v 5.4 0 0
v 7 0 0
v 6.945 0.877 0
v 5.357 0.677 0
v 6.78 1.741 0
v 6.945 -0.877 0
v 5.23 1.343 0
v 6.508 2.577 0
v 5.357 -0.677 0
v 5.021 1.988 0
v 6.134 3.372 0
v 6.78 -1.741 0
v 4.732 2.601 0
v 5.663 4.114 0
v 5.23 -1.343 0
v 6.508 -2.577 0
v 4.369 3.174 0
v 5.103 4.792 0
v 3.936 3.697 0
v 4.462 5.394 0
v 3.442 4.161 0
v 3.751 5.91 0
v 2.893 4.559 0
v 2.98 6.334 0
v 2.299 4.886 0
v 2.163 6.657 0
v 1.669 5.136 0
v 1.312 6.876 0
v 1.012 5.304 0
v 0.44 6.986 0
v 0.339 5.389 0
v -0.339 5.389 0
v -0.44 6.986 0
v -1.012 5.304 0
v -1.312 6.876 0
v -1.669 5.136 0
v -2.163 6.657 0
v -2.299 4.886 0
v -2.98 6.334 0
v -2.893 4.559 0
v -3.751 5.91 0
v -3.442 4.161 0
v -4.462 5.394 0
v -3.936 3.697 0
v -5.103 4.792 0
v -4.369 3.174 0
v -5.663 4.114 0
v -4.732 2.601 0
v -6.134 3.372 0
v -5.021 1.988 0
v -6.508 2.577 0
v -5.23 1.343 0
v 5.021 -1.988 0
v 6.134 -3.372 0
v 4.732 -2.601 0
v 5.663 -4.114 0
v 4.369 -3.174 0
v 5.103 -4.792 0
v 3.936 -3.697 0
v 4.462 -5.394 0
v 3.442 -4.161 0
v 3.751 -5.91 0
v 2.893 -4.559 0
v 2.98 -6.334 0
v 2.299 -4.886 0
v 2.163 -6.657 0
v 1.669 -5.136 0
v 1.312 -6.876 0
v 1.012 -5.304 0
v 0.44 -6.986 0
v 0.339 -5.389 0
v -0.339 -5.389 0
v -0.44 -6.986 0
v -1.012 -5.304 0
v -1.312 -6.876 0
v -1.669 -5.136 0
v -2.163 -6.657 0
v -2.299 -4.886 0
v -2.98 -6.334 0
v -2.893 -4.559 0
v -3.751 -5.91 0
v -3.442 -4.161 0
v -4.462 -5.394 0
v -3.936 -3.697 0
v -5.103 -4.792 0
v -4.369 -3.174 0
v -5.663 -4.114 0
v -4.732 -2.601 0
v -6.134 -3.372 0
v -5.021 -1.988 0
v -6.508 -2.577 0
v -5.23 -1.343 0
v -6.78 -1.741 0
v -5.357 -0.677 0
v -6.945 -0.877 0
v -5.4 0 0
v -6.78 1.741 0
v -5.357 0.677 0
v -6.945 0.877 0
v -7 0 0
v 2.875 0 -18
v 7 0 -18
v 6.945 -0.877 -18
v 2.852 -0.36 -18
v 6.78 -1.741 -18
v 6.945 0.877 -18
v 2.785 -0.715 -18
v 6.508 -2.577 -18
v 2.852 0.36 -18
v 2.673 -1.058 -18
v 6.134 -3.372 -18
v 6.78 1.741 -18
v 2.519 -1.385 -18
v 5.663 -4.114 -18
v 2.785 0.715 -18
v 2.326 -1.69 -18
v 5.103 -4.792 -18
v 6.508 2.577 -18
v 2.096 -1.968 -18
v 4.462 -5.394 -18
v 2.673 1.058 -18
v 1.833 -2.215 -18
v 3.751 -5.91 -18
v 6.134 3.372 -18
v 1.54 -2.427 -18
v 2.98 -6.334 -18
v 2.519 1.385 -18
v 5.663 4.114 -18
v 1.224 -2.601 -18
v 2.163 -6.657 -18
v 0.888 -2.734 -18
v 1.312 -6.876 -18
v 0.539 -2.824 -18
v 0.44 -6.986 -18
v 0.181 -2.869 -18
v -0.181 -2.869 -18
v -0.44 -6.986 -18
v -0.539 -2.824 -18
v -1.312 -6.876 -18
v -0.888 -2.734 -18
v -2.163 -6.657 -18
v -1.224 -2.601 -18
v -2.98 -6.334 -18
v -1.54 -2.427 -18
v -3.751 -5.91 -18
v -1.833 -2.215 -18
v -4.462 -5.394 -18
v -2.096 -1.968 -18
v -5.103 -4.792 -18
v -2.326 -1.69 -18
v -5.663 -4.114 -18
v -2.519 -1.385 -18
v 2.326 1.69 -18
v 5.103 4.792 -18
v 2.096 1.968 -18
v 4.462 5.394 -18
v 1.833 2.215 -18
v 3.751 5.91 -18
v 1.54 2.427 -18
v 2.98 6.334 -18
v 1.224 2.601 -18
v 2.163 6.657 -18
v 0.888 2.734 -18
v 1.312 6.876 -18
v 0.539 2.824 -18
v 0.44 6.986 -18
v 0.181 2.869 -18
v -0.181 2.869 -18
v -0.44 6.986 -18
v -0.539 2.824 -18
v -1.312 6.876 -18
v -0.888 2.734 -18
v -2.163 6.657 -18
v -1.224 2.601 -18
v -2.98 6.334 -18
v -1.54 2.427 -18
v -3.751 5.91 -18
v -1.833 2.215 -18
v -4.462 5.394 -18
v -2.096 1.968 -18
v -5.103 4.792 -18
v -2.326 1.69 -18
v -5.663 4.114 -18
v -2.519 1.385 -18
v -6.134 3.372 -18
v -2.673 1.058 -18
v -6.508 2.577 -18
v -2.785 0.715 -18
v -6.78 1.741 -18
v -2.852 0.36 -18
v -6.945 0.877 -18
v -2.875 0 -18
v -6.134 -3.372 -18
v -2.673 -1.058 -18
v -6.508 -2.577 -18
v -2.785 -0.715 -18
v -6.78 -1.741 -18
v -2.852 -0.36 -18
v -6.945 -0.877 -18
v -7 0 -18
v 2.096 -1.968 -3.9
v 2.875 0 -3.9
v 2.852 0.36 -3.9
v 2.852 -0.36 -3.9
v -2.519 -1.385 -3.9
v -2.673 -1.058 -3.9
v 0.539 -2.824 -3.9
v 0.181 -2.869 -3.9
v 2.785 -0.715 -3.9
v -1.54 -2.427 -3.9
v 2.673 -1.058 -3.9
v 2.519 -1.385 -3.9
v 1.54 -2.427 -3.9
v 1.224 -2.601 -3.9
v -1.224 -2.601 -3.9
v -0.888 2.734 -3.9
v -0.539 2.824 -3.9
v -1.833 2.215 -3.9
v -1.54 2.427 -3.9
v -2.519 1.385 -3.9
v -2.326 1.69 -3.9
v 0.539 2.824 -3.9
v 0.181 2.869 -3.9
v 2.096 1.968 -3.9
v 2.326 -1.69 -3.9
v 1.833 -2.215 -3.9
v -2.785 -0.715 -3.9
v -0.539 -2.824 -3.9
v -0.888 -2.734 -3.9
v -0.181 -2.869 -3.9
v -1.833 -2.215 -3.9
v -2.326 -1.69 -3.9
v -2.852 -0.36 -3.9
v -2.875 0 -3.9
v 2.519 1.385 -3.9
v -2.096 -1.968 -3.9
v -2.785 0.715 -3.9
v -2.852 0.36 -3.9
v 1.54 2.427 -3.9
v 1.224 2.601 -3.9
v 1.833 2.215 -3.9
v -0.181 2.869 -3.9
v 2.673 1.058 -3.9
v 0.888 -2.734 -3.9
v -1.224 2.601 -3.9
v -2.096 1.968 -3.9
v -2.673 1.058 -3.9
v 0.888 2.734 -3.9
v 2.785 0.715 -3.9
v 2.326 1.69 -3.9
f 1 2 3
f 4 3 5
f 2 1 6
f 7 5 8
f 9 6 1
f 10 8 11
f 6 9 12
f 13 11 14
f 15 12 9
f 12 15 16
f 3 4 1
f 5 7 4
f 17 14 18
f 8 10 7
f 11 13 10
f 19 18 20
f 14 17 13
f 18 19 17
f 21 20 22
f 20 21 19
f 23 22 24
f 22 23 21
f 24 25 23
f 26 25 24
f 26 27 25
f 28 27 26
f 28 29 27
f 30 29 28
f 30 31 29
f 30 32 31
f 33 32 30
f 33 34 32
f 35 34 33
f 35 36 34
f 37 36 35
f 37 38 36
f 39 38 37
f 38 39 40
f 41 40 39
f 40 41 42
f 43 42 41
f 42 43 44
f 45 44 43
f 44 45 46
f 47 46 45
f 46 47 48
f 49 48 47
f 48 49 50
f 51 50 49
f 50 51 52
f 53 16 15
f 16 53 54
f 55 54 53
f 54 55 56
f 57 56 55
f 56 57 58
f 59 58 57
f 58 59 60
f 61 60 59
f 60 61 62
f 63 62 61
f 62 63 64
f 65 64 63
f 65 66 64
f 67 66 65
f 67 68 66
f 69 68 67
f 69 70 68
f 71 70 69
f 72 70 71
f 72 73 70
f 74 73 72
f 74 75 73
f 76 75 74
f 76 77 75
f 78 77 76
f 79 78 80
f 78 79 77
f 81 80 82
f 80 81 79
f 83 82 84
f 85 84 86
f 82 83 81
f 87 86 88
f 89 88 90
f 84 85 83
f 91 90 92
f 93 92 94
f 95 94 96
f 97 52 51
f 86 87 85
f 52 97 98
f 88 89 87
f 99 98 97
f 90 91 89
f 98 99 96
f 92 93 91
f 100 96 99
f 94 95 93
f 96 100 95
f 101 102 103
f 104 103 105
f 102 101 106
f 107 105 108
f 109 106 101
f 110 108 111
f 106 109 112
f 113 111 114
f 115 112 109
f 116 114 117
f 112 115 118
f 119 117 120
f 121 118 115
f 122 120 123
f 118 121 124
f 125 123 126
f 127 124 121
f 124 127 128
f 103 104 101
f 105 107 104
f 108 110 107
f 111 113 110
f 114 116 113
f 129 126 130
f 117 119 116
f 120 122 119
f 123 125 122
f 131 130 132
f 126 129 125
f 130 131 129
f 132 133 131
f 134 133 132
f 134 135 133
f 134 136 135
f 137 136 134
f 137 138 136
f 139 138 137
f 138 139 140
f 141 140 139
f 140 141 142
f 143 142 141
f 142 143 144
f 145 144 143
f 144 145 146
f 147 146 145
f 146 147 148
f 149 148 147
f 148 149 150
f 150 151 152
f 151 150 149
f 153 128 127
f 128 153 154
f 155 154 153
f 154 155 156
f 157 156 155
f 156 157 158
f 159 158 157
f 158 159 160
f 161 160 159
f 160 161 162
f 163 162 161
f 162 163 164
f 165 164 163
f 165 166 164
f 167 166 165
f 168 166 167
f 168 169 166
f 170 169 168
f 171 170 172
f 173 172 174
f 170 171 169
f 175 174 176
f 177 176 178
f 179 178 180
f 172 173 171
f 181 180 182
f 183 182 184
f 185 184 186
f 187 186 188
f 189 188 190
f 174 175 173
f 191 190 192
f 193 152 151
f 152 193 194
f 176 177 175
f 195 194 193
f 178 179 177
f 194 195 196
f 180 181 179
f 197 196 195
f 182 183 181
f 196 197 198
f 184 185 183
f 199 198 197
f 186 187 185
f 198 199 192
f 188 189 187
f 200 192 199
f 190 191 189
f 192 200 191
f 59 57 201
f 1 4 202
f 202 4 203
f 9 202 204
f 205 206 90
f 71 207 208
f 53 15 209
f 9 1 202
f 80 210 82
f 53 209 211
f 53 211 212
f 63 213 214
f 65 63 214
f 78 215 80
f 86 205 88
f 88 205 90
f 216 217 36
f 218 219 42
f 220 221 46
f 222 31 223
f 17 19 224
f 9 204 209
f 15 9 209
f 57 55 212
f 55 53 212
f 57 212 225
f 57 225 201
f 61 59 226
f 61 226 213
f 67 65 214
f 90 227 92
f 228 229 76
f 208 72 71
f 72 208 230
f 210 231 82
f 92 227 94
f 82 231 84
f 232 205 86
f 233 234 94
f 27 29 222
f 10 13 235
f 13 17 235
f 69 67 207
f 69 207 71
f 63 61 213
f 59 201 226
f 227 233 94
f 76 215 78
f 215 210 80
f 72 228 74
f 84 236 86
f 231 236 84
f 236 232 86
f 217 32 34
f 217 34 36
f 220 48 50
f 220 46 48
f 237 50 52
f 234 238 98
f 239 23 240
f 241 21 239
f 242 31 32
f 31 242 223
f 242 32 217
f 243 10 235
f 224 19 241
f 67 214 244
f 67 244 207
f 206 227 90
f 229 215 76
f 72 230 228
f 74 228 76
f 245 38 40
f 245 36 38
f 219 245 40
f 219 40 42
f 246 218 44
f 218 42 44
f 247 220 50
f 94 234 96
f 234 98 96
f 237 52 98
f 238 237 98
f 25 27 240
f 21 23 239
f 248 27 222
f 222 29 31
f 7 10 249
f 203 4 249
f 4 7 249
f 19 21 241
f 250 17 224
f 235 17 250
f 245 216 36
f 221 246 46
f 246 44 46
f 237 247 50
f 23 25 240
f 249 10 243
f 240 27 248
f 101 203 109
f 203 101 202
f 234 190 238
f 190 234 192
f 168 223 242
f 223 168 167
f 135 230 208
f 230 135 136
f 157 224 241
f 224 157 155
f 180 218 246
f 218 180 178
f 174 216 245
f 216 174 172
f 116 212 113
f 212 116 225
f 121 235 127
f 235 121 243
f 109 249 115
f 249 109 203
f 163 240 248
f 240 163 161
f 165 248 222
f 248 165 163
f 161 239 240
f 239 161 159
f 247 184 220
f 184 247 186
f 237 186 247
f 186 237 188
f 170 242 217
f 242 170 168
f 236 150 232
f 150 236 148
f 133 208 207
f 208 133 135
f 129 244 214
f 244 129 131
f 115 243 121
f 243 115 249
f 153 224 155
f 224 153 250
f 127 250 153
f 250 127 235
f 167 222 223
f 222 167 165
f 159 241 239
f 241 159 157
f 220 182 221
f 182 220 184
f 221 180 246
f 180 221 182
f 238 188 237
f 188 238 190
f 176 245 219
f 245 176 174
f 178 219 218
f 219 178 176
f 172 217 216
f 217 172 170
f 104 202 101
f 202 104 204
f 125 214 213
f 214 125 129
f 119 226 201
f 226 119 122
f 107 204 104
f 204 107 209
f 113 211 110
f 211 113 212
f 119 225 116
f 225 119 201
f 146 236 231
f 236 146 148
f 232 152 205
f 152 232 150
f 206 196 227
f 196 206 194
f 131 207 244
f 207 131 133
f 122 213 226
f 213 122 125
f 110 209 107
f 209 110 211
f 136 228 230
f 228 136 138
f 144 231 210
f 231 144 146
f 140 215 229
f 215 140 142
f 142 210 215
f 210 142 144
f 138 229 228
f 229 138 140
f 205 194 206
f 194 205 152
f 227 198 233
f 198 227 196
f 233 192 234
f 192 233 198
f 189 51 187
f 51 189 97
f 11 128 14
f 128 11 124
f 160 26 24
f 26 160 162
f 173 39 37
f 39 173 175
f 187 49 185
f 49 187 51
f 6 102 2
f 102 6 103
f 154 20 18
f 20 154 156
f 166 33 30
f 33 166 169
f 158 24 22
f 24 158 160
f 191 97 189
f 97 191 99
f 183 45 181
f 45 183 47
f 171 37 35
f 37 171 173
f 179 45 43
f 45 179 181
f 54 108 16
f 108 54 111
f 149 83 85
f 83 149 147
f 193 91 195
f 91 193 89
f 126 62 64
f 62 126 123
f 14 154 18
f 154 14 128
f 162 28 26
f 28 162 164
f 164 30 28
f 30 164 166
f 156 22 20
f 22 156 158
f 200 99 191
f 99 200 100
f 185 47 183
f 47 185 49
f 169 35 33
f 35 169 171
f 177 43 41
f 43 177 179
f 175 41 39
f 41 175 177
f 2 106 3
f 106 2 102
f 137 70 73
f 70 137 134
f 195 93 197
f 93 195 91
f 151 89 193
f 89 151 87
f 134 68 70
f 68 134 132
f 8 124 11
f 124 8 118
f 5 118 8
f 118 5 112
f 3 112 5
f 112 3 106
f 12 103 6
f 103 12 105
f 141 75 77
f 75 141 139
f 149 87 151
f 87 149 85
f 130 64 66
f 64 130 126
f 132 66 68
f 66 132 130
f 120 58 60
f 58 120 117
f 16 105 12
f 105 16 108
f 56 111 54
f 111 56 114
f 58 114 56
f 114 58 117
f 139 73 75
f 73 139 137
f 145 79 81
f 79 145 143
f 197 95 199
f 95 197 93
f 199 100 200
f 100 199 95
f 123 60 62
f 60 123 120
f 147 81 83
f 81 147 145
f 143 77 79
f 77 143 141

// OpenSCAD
$fn = 50;


difference() {
	union() {
		translate(v = [0, 0, -18.0000000000]) {
			cylinder(h = 18, r = 7.0000000000);
		}
		cylinder(h = 0, r = 17.0000000000);
	}
	union() {
		translate(v = [0, 0, 0]) {
			rotate(a = [0, 0, 0]) {
				difference() {
					union() {
						#translate(v = [0, 0, -18.0000000000]) {
							cylinder(h = 18, r = 2.6000000000);
						}
						#translate(v = [0, 0, -3.9000000000]) {
							cylinder(h = 3.9000000000, r = 7.0000000000, r1 = 2.8750000000, r2 = 5.4000000000);
						}
						#translate(v = [0, 0, -18.0000000000]) {
							cylinder(h = 18, r = 2.8750000000);
						}
						#translate(v = [0, 0, -18.0000000000]) {
							cylinder(h = 18, r = 2.6000000000);
						}
					}
					union();
				}
			}
		}
	}
}
